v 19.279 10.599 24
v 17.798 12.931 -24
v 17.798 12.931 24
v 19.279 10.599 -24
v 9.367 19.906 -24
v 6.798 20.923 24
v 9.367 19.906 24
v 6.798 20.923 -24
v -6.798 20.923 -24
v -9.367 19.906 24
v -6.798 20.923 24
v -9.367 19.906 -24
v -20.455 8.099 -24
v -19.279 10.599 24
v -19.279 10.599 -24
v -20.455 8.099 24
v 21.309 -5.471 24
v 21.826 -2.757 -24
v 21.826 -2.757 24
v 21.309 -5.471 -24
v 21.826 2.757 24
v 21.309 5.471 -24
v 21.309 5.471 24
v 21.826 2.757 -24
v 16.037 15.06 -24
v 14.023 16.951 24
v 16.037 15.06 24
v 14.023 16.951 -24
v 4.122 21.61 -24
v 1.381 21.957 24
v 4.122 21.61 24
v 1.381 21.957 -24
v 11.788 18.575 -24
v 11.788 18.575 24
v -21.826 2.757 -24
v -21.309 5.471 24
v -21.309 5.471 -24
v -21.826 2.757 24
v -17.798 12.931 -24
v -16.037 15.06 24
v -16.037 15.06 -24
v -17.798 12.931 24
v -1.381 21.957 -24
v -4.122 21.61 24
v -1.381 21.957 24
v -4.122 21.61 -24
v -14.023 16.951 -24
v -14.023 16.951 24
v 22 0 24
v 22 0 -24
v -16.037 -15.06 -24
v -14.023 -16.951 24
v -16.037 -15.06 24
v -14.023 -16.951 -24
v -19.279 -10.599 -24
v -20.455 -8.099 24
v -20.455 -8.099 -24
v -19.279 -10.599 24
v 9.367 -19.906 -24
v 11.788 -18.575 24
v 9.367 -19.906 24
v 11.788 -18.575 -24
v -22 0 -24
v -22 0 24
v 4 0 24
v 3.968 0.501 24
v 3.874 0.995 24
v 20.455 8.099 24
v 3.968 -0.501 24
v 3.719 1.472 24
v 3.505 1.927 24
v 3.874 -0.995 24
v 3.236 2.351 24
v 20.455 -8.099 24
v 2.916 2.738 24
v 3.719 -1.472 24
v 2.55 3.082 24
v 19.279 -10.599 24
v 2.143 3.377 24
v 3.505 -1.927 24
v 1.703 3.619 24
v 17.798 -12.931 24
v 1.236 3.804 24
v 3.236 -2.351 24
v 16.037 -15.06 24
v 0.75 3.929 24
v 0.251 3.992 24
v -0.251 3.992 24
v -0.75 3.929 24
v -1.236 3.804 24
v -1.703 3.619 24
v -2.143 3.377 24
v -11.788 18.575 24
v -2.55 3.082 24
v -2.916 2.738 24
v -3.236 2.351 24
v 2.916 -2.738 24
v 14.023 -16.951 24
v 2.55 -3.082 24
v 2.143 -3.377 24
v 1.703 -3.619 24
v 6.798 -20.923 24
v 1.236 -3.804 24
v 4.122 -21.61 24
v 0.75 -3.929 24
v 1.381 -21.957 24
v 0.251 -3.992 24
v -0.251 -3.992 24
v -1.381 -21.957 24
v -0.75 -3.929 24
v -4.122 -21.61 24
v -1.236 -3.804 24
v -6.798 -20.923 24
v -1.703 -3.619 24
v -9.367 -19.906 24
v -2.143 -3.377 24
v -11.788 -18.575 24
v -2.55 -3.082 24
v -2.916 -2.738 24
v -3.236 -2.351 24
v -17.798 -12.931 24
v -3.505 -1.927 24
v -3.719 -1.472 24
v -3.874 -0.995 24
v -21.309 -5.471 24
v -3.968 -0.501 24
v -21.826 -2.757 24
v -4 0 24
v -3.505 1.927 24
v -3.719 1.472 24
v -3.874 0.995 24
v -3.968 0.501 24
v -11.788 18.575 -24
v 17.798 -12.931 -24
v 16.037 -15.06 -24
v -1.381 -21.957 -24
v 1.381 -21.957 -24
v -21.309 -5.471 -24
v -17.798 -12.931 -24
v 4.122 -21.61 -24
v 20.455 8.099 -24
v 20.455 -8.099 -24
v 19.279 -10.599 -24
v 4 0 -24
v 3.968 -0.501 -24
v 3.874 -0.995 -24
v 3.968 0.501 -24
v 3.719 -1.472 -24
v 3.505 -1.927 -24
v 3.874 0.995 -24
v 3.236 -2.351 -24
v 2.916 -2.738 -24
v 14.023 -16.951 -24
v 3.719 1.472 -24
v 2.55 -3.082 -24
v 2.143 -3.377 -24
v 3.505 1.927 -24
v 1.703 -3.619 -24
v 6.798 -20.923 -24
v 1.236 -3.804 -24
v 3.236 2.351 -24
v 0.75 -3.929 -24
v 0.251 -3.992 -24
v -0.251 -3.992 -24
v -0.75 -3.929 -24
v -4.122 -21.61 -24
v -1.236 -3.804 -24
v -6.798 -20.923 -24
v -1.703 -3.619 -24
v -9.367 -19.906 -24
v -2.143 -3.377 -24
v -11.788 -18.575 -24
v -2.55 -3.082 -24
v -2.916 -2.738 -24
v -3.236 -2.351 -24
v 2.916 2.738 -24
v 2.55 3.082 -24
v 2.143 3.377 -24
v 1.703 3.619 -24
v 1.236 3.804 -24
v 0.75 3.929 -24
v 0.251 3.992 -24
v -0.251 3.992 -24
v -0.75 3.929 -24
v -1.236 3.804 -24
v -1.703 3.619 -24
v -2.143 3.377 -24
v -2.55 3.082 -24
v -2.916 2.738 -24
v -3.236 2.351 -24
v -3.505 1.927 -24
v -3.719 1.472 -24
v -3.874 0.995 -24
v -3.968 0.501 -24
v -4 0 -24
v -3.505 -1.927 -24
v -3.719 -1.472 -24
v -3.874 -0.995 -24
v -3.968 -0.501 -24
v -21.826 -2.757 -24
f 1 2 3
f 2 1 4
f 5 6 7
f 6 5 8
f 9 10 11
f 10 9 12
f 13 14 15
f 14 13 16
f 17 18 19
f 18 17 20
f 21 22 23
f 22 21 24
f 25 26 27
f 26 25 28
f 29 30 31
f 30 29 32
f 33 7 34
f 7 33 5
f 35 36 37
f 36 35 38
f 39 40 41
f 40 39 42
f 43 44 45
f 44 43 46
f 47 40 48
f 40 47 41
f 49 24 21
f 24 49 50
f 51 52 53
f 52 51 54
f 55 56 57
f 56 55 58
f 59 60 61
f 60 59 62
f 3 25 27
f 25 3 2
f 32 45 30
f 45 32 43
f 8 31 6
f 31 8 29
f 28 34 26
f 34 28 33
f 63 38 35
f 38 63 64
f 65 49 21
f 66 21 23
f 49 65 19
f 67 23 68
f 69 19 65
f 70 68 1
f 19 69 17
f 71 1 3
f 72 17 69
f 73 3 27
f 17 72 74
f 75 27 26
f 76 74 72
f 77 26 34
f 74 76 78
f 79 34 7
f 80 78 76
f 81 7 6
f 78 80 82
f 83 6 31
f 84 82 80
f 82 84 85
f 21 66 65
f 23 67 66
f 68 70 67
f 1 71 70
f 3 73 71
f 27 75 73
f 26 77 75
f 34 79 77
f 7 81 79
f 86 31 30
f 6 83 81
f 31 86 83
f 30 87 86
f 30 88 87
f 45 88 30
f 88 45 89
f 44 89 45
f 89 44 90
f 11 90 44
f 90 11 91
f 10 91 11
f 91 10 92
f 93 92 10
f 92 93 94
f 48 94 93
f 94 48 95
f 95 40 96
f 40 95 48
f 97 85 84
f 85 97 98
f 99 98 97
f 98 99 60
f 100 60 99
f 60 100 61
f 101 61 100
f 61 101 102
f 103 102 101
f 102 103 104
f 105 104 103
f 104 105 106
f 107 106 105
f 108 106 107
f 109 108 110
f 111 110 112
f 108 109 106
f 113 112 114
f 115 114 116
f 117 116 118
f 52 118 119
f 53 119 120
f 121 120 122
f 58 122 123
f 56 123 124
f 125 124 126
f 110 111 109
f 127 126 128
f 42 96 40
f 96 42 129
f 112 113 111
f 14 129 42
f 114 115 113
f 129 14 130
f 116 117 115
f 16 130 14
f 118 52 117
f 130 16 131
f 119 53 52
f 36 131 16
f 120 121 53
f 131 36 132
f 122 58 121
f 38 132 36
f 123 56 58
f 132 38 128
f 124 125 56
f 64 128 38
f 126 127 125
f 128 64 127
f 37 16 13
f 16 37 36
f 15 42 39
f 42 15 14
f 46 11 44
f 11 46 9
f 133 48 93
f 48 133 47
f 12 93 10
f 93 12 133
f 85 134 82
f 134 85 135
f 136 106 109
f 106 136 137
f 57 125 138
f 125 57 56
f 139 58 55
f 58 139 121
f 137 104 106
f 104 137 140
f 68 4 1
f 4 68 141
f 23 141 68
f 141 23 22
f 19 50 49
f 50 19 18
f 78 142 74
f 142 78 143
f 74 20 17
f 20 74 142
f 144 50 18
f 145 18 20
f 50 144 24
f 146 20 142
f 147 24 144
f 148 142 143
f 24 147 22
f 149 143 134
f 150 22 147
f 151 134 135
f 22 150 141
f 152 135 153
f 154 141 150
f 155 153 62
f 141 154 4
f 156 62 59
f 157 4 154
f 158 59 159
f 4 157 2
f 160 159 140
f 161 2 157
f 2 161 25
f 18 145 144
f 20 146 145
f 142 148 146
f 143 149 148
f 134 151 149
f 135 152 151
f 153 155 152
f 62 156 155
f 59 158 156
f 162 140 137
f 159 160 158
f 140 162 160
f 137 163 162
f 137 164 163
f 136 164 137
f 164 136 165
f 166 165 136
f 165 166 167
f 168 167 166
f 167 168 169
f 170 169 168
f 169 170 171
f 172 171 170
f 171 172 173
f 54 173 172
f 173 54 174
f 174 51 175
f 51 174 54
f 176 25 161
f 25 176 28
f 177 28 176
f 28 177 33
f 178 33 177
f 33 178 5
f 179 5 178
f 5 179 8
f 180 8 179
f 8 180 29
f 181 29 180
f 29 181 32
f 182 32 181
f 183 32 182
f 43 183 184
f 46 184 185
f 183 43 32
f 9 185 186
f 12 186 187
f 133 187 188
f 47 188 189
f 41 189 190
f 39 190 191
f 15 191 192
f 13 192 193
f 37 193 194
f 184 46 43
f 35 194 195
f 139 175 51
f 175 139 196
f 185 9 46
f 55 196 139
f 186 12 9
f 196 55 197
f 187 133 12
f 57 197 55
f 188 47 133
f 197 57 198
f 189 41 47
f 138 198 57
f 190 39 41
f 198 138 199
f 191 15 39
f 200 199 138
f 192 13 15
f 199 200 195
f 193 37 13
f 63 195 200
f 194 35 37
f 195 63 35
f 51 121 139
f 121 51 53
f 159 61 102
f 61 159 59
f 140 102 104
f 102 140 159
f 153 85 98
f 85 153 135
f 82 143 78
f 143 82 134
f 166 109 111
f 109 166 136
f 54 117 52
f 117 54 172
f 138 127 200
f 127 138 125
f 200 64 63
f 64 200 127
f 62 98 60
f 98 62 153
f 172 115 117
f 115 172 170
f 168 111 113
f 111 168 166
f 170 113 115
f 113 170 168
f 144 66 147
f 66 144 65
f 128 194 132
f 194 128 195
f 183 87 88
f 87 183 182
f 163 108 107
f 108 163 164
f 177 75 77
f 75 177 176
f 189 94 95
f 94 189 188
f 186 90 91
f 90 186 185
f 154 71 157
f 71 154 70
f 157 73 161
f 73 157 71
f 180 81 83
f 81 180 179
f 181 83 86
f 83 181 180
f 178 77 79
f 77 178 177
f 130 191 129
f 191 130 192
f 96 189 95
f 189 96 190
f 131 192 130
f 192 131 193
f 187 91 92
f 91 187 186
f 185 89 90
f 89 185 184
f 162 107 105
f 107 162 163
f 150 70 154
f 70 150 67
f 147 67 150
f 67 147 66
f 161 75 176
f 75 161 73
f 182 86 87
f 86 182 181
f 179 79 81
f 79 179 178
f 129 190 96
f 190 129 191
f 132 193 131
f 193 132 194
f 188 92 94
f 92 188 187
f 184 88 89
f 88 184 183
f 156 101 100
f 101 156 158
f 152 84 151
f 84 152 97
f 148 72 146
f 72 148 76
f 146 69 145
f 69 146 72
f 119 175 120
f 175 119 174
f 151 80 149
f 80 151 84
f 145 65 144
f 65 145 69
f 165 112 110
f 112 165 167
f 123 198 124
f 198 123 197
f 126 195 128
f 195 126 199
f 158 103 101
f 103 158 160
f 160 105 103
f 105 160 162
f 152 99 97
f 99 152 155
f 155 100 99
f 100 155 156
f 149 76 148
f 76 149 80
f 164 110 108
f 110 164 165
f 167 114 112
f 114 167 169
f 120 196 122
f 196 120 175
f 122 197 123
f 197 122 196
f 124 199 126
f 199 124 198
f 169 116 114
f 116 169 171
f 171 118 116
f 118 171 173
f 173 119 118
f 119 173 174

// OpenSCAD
$fn = 50;


difference() {
	union() {
		translate(v = [0, 0, -24.0000000000]) {
			cylinder(h = 48, r = 22.0000000000);
		}
	}
	union() {
		translate(v = [0, 0, -100.0000000000]) {
			cylinder(h = 200, r = 4);
		}
	}
}
